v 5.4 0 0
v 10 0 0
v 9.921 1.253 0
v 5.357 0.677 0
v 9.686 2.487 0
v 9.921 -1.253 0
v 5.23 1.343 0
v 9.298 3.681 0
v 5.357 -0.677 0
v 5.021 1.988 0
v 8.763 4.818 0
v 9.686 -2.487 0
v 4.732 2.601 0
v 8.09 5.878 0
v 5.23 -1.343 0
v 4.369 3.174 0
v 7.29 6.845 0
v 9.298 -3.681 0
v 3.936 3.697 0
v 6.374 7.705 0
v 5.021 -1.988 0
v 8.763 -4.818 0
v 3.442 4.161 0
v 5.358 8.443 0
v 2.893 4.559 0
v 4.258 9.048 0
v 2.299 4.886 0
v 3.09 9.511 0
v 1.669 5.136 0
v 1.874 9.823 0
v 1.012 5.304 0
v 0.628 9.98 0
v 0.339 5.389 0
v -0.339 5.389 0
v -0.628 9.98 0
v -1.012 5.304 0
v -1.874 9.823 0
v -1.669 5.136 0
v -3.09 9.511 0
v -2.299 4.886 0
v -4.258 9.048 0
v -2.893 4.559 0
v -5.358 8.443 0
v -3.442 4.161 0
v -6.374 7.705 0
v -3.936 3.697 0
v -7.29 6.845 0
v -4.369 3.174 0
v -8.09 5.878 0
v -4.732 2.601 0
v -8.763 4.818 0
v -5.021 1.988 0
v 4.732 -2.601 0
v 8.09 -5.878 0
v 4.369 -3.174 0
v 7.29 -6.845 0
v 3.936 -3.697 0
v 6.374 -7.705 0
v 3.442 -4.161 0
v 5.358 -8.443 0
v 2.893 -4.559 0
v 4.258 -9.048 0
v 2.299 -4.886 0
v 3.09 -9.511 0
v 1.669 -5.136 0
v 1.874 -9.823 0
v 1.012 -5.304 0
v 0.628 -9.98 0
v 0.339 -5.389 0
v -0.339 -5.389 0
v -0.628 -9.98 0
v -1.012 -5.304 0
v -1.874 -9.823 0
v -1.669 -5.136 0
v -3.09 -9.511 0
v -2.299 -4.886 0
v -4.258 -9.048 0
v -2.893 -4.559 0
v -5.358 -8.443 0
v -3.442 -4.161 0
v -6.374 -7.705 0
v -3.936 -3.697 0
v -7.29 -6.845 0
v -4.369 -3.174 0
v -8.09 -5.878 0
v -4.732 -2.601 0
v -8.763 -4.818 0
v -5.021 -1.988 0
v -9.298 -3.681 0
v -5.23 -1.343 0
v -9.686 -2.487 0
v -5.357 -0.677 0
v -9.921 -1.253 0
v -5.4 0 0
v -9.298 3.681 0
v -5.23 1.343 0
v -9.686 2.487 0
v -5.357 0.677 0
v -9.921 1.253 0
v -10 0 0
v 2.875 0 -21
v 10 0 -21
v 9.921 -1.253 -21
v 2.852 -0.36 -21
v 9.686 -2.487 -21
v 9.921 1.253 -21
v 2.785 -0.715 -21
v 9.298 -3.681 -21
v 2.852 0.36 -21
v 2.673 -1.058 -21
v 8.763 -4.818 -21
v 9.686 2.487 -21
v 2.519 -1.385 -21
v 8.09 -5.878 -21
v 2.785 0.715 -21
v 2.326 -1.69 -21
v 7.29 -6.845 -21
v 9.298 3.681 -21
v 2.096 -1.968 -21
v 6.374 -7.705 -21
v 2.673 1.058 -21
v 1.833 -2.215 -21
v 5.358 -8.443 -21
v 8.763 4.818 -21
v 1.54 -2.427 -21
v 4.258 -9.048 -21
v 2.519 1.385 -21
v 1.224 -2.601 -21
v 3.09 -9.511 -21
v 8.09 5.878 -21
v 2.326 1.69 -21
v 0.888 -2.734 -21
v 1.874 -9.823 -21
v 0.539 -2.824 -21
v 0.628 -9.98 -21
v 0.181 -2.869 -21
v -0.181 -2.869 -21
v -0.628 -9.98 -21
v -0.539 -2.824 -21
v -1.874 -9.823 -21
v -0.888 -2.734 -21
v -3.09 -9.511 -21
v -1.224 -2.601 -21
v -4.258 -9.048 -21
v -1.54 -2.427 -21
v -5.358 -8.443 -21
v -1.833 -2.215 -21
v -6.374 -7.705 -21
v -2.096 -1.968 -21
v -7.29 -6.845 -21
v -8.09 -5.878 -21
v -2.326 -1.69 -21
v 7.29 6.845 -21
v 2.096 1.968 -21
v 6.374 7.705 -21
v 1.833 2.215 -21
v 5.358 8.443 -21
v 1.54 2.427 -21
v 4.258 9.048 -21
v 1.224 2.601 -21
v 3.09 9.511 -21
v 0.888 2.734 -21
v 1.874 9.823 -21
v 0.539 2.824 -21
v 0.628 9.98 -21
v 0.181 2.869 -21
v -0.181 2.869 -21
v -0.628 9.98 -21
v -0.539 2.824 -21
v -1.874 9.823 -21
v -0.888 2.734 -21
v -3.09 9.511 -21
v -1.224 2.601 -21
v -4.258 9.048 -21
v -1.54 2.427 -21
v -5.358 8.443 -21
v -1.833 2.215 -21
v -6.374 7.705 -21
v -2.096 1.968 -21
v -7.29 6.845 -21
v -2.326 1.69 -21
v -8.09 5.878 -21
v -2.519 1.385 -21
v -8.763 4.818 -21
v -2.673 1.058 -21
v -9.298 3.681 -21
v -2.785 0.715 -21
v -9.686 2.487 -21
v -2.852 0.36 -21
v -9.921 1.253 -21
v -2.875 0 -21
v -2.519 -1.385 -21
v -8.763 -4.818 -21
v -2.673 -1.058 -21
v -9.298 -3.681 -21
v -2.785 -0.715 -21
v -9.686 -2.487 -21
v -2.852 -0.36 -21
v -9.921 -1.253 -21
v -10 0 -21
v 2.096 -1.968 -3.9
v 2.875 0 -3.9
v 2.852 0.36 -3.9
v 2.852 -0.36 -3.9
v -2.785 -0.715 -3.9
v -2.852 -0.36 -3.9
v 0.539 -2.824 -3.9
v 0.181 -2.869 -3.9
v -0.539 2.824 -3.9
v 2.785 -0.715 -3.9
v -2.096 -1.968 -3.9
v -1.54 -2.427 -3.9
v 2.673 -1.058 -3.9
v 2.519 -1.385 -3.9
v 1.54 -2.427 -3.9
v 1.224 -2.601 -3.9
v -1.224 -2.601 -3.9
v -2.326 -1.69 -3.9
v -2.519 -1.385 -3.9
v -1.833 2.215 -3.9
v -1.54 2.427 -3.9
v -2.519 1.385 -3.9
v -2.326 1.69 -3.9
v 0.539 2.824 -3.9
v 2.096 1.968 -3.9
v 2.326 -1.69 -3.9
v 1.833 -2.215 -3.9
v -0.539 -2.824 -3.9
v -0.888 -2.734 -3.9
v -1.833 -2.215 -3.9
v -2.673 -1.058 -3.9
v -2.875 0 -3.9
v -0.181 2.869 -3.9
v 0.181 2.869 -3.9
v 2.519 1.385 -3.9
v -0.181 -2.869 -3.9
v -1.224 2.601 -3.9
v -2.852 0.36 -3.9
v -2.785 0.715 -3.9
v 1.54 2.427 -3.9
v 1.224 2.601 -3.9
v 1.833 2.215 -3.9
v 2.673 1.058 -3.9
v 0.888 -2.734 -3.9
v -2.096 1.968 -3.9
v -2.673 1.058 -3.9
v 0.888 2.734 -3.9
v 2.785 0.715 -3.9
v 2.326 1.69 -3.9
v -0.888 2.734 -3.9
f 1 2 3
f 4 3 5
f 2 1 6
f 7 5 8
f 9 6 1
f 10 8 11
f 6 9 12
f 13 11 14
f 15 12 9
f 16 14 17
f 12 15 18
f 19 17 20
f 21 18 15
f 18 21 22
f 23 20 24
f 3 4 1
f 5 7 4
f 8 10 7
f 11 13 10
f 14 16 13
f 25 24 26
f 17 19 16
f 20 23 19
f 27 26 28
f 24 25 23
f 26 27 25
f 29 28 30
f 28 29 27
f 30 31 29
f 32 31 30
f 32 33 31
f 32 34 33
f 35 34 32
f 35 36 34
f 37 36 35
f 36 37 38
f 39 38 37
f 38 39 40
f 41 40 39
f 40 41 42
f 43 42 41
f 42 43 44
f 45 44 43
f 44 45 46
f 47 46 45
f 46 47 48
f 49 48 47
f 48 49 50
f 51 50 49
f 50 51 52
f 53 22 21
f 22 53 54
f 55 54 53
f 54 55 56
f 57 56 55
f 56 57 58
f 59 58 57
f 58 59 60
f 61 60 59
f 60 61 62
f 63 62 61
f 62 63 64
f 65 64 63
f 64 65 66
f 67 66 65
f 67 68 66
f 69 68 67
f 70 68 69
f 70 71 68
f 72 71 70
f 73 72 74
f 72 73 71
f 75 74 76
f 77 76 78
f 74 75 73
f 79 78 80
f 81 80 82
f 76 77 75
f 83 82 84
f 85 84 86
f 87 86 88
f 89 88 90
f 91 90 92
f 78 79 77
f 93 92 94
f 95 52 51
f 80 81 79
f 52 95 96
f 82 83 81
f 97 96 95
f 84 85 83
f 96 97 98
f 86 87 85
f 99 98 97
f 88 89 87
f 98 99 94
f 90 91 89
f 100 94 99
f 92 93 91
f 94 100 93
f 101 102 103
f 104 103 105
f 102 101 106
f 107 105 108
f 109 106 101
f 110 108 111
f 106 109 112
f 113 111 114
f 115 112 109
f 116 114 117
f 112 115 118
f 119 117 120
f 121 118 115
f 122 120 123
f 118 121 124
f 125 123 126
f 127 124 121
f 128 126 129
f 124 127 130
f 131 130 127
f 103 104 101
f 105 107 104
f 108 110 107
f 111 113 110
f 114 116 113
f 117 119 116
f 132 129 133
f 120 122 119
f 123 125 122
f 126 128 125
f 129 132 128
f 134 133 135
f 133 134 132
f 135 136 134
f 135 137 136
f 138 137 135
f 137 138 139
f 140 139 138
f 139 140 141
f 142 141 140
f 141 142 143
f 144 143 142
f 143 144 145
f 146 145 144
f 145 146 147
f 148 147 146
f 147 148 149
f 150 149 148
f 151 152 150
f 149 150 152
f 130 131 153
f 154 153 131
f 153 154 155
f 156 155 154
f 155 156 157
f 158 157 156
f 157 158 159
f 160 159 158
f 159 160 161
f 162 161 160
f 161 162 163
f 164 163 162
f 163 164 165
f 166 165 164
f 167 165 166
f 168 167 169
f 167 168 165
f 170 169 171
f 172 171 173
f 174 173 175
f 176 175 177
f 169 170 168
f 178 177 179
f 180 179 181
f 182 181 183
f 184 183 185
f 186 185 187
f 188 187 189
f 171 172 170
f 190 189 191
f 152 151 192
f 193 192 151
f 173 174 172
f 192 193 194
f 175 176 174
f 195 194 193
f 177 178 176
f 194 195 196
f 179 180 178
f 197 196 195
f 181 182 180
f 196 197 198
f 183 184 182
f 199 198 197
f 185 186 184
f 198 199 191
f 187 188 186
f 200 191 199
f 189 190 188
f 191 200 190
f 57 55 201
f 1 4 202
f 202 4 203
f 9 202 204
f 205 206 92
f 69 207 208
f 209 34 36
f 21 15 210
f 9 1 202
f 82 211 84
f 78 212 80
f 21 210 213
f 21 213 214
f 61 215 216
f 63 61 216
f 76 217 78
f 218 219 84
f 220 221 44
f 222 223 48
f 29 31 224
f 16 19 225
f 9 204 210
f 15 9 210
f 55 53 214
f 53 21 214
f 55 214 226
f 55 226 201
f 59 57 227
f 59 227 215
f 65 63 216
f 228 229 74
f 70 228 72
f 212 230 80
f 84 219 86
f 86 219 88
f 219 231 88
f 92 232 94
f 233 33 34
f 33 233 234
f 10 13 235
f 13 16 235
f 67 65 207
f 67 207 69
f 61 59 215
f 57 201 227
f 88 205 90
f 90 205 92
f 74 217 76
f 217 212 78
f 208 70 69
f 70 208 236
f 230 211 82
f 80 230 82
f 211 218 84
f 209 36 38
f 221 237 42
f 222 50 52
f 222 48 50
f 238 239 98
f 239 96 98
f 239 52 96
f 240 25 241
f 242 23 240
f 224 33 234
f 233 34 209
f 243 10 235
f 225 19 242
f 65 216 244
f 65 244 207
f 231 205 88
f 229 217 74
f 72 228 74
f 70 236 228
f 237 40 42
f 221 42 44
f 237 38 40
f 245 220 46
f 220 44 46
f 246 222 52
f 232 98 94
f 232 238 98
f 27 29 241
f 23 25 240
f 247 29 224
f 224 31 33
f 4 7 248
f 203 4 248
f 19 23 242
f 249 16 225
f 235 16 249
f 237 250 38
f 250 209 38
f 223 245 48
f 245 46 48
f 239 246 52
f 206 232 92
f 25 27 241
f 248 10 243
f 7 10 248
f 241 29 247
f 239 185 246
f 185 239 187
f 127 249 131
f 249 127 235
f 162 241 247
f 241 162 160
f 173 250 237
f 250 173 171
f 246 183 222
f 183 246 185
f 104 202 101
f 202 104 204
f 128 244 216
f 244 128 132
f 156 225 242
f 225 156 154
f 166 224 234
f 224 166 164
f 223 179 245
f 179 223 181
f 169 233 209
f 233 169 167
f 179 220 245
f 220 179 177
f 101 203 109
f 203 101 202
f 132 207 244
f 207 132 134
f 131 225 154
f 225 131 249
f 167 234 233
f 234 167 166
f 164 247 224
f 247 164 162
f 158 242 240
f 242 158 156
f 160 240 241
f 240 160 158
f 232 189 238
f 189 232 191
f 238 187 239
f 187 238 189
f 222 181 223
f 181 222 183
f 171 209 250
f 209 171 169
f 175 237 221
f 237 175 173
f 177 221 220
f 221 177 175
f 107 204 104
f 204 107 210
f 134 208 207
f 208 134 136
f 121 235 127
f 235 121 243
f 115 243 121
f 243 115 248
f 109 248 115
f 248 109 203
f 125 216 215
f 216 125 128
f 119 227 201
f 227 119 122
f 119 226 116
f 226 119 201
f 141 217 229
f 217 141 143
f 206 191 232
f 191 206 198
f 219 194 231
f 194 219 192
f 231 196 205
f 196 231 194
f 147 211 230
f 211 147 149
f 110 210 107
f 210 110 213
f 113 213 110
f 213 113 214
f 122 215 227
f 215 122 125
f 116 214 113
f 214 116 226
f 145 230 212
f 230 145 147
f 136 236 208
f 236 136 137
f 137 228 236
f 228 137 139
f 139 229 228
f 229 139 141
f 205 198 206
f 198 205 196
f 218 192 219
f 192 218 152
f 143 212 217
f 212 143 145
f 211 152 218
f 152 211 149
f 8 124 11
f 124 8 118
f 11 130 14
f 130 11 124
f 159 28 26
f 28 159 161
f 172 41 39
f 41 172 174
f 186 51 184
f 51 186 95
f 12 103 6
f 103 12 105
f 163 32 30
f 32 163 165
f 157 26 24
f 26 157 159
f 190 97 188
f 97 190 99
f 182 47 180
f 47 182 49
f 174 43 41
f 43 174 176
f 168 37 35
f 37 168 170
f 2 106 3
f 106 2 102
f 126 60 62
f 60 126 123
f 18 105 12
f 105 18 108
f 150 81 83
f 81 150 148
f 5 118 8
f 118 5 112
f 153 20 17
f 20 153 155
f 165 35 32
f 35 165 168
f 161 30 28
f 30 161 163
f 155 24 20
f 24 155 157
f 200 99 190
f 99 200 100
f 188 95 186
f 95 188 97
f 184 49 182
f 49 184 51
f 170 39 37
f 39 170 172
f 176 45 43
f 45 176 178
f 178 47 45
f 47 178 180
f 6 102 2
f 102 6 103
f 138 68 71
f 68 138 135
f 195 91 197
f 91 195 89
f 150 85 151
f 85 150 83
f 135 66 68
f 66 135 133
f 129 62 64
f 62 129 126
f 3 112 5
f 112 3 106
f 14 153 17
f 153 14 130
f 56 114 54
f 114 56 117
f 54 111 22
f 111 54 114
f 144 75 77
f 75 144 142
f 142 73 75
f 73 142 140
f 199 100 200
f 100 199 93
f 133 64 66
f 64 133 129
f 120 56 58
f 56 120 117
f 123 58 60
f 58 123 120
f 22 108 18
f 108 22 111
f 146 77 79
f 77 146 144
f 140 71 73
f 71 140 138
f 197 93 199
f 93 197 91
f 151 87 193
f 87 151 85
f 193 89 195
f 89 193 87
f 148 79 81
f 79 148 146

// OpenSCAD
$fn = 50;


difference() {
	union() {
		translate(v = [0, 0, -21.0000000000]) {
			cylinder(h = 21, r = 10.0000000000);
		}
	}
	union() {
		translate(v = [0, 0, 0]) {
			rotate(a = [0, 0, 0]) {
				difference() {
					union() {
						#translate(v = [0, 0, -21.0000000000]) {
							cylinder(h = 21, r = 2.6000000000);
						}
						#translate(v = [0, 0, -3.9000000000]) {
							cylinder(h = 3.9000000000, r1 = 2.8750000000, r2 = 5.4000000000);
						}
						#translate(v = [0, 0, -21.0000000000]) {
							cylinder(h = 21, r = 2.8750000000);
						}
						#translate(v = [0, 0, -21.0000000000]) {
							cylinder(h = 21, r = 2.6000000000);
						}
					}
					union();
				}
			}
		}
	}
}
